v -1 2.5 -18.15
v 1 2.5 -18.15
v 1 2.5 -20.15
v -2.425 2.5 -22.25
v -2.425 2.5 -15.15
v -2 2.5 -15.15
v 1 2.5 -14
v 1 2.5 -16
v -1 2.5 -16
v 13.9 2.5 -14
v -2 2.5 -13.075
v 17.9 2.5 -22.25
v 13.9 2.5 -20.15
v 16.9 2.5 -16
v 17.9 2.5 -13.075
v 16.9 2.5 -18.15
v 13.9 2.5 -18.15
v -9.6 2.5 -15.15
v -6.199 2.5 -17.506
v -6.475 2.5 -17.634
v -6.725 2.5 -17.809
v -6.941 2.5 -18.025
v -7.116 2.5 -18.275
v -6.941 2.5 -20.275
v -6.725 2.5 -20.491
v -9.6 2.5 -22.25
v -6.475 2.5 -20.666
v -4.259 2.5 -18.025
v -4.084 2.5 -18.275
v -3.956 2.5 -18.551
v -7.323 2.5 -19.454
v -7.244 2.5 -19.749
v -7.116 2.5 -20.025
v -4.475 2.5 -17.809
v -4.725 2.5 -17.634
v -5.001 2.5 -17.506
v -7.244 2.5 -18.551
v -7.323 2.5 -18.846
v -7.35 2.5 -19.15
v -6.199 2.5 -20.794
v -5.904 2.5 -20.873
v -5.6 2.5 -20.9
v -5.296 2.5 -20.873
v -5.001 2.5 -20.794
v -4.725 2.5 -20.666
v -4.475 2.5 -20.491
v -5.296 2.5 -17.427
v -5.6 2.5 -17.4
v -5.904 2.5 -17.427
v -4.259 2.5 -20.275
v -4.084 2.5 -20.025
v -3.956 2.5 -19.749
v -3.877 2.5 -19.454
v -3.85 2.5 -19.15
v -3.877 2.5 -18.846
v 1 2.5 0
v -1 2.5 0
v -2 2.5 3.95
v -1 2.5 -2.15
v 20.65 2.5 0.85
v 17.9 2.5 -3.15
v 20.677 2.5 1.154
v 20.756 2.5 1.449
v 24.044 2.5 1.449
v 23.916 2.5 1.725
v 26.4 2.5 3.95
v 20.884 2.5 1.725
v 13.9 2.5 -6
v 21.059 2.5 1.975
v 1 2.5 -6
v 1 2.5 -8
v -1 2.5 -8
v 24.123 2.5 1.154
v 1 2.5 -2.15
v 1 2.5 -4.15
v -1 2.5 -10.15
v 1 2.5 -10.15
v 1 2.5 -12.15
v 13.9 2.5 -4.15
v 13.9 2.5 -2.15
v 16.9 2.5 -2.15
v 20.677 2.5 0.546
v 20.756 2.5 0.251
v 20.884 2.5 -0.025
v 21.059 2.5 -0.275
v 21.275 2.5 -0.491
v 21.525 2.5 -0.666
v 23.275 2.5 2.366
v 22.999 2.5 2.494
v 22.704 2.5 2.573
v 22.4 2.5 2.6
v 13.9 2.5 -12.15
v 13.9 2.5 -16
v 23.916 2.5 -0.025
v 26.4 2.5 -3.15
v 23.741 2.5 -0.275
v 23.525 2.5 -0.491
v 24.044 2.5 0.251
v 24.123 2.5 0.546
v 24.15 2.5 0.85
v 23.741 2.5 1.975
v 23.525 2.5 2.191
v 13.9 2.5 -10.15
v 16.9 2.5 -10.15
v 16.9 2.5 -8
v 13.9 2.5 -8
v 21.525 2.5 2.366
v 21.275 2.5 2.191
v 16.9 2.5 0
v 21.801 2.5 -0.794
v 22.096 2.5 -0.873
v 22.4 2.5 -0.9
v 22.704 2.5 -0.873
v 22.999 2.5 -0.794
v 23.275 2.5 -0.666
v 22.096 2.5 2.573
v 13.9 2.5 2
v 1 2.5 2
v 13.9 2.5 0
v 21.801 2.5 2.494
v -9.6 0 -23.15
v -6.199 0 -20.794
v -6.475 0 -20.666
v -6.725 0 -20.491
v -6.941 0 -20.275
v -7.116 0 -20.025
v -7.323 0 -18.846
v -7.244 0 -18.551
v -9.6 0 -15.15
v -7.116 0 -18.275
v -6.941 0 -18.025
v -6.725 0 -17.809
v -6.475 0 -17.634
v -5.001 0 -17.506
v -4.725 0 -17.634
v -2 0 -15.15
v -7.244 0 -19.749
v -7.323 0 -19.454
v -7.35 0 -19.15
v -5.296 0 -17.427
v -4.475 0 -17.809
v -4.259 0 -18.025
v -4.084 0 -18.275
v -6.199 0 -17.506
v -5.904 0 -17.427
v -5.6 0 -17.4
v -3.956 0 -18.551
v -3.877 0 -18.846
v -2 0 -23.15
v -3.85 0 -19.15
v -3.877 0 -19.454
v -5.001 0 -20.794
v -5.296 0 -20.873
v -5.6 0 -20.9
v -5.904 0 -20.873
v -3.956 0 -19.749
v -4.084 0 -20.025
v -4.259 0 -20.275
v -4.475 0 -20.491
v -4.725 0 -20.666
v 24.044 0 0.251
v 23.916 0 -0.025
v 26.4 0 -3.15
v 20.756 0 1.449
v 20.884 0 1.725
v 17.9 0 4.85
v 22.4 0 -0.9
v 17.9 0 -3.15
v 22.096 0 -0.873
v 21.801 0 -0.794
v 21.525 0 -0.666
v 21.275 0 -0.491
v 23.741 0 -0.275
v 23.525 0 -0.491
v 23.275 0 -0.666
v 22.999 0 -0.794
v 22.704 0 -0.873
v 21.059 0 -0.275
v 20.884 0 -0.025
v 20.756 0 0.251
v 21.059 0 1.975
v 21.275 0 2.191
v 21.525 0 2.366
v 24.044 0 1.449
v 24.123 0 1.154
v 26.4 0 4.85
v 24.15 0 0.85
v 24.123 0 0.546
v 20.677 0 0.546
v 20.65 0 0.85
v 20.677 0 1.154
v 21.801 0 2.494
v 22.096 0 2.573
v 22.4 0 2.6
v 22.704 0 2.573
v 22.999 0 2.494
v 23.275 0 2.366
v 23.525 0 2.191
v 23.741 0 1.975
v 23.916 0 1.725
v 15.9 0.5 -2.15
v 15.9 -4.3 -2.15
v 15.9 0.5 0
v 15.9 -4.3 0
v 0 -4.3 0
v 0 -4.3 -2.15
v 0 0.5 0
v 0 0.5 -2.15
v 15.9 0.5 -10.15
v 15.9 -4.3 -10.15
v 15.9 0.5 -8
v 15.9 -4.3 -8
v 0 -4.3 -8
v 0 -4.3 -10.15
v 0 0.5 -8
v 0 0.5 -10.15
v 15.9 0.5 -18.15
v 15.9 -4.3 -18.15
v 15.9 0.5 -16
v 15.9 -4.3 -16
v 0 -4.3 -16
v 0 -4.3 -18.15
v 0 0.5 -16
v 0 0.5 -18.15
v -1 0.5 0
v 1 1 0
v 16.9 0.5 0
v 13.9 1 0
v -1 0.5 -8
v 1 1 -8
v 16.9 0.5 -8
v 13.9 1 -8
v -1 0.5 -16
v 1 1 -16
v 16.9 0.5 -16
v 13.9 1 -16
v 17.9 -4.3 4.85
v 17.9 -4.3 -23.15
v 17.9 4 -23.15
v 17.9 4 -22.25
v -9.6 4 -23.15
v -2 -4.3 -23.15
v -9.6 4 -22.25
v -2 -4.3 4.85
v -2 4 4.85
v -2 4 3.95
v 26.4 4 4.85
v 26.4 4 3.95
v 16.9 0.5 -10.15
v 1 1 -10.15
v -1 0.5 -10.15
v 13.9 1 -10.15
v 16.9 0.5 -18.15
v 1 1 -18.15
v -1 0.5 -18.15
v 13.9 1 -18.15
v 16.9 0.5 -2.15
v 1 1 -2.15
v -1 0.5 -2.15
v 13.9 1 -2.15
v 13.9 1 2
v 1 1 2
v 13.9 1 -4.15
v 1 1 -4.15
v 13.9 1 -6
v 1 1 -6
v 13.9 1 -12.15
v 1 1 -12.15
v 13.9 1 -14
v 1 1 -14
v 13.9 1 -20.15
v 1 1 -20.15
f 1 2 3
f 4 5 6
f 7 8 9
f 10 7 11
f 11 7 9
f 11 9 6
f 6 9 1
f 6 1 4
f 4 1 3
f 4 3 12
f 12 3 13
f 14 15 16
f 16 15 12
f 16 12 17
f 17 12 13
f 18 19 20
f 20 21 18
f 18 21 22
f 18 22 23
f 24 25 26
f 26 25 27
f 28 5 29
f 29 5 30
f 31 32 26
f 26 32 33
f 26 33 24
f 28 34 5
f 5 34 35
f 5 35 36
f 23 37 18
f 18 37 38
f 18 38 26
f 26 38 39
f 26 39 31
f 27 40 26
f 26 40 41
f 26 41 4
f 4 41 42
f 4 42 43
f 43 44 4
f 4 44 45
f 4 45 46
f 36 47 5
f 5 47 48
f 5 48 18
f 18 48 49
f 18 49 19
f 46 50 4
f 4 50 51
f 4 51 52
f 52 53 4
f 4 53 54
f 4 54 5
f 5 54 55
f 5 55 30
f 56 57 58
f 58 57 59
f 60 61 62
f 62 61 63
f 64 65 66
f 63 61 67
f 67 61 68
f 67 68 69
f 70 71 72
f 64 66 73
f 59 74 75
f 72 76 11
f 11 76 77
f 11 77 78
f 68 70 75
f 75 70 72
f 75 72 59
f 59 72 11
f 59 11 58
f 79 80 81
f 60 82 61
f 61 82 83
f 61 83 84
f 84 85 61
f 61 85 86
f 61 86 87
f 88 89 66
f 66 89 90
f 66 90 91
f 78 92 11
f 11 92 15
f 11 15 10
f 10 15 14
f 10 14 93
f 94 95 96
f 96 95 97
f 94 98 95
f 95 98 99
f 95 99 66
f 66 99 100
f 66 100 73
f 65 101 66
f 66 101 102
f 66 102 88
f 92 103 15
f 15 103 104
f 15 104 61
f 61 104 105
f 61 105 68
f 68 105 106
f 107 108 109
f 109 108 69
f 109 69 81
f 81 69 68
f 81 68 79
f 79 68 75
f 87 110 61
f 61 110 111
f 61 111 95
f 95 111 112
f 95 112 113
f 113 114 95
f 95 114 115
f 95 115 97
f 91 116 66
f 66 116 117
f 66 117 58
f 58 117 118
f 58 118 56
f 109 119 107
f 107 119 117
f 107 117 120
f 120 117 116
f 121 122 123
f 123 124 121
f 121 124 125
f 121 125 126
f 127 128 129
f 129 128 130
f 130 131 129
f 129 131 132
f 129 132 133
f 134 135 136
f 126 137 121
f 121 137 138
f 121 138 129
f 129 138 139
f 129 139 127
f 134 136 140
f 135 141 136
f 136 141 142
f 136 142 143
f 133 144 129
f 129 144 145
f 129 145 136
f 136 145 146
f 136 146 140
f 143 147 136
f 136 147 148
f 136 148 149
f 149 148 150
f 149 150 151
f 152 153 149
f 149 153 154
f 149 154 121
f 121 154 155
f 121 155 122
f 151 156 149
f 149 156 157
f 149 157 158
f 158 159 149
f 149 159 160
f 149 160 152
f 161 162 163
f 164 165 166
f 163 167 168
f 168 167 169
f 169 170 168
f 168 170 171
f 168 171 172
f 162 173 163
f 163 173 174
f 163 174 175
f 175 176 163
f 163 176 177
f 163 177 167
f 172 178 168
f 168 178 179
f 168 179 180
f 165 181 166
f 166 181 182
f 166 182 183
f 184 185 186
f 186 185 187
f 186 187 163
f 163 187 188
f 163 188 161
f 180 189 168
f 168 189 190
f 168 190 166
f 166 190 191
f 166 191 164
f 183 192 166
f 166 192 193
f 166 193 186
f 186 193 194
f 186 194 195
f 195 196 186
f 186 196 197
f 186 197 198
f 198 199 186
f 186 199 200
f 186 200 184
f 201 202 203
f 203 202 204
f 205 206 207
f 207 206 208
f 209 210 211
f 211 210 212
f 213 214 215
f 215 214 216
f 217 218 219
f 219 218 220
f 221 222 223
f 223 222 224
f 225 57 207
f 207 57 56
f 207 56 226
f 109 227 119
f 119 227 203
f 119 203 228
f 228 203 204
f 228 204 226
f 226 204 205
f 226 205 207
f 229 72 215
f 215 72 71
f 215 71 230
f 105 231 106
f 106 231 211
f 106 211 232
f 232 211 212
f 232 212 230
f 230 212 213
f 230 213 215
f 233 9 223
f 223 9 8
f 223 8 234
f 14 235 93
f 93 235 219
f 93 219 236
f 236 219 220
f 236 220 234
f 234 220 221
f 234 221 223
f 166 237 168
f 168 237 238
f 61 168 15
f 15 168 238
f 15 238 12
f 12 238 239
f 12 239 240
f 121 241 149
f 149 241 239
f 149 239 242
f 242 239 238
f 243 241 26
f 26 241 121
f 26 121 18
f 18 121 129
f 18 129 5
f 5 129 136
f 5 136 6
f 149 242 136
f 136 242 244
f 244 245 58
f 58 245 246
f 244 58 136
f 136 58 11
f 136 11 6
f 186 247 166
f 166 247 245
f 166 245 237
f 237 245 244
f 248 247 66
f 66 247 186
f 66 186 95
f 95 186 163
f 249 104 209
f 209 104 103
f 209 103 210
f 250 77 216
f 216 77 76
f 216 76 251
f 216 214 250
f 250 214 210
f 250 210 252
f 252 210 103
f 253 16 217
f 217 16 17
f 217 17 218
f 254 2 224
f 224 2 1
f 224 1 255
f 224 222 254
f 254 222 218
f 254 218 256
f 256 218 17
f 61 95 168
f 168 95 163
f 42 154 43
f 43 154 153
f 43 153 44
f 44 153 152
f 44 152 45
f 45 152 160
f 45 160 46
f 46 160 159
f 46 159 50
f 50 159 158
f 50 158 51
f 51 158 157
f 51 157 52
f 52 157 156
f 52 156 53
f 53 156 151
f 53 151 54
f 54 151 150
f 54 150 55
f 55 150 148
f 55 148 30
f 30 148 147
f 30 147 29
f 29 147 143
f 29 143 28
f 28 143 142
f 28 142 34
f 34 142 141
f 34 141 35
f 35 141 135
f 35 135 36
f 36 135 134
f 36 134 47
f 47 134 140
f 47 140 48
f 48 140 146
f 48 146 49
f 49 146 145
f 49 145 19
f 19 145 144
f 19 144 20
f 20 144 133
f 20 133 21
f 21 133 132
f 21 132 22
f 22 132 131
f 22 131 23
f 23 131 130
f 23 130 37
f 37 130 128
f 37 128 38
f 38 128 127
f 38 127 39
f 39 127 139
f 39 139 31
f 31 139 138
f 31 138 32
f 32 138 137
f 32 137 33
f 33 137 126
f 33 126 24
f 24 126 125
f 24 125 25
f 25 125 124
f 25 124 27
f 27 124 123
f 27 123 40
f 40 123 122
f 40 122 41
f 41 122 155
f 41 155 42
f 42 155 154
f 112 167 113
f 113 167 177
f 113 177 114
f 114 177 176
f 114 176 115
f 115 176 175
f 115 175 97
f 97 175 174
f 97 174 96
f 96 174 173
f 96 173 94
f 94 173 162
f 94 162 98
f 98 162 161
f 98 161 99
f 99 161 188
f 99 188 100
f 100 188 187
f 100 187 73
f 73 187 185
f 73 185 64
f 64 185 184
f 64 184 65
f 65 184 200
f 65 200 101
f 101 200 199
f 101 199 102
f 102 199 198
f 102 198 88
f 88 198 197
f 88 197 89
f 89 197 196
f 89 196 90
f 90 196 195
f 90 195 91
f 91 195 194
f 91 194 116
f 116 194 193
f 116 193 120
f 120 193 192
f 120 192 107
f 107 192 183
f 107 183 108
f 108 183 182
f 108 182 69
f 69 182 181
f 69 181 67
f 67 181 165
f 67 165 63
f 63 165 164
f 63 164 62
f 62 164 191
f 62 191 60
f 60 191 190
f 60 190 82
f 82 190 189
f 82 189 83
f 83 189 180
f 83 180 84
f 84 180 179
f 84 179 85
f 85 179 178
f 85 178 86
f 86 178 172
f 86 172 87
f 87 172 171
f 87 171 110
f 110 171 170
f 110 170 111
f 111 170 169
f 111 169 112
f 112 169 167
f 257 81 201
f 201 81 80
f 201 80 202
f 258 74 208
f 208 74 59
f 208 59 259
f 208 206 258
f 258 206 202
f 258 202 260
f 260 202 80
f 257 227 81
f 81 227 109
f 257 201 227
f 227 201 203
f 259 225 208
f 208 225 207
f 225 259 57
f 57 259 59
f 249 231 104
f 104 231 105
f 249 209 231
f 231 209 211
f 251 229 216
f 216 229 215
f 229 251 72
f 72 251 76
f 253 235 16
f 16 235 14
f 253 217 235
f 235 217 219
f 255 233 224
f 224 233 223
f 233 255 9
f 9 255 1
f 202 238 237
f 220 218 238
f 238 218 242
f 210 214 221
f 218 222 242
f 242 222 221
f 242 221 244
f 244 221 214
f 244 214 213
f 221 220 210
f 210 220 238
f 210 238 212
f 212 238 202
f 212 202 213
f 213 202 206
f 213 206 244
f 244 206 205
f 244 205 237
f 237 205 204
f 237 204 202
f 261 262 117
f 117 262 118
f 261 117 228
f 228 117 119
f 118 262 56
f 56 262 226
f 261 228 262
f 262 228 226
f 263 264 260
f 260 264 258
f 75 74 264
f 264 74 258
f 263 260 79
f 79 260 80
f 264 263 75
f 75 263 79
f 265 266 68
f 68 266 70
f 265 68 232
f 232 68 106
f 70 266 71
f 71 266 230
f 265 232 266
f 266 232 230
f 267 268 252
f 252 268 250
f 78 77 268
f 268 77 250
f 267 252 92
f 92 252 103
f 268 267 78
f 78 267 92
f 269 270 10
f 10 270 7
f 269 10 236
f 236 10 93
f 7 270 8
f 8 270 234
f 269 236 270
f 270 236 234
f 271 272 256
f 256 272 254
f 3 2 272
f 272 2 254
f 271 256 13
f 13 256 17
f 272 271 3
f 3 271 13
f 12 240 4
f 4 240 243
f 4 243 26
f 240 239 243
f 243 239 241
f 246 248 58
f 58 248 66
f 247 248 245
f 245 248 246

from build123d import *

# Parameters (mm, degrees)
SKETCH1_W           = 15.9
SKETCH1_H           = 2.15
SKETCH1_R           = 1.75
BASE_DEPTH          = 2.5
SKETCH3_W           = 17.9
SKETCH3_H           = 2.15
CUT_EXTRUDE1_DEPTH  = 2
SKETCH4_W           = 19.9
SKETCH4_H           = 28
SKETCH4_W_2         = 15.9
SKETCH4_H_2         = 2.15
BOSS_EXTRUDE1_DEPTH = 4.3
SKETCH5_W           = 12.9
SKETCH5_H           = 6.15
CUT_EXTRUDE2_DEPTH  = 1.5
SKETCH6_W           = 27.5
SKETCH6_H           = 0.9
BOSS_EXTRUDE2_DEPTH = 1.5
SKETCH6_3_W         = 27.5
SKETCH6_3_H         = 0.9
SKETCH6_3_W_2       = 28.4
BOSS_EXTRUDE3_DEPTH = 1.5


with BuildPart() as part:
    # Sketch1 → Base (new body)
    with BuildSketch(Plane(origin=(0, 0, 0), x_dir=(1, 0, 0), z_dir=(0, 1, 0))):
        Polygon((-9.6, 15.15), (-2, 15.15), (-2, -4.85), (26.4, -4.85), (26.4, 3.15), (17.9, 3.15), (17.9, 23.15), (-9.6, 23.15), align=None)
        with Locations((7.95, 1.075)):
            Rectangle(SKETCH1_W, SKETCH1_H, mode=Mode.SUBTRACT)
        with Locations((7.95, 9.075)):
            Rectangle(SKETCH1_W, SKETCH1_H, mode=Mode.SUBTRACT)
        with Locations((22.4, -0.85)):
            Circle(SKETCH1_R, mode=Mode.SUBTRACT)
        with Locations((-5.6, 19.15)):
            Circle(SKETCH1_R, mode=Mode.SUBTRACT)
        with Locations((7.95, 17.075)):
            Rectangle(SKETCH1_W, SKETCH1_H, mode=Mode.SUBTRACT)
    extrude(amount=BASE_DEPTH)

    # Sketch3 → Cut-Extrude1 (cut)
    with BuildSketch(Plane(origin=(0, 2.5, 0), x_dir=(1, 0, 0), z_dir=(0, 1, 0))):
        with Locations((7.95, 17.075)):
            Rectangle(SKETCH3_W, SKETCH3_H)
        with Locations((7.95, 9.075)):
            Rectangle(SKETCH3_W, SKETCH3_H)
        with Locations((7.95, 1.075)):
            Rectangle(SKETCH3_W, SKETCH3_H)
    extrude(amount=-CUT_EXTRUDE1_DEPTH, mode=Mode.SUBTRACT)

    # Sketch4 → Boss-Extrude1 (add)
    with BuildSketch(Plane.XZ):
        with Locations((7.95, -9.15)):
            Rectangle(SKETCH4_W, SKETCH4_H)
        with Locations((7.95, -17.075)):
            Rectangle(SKETCH4_W_2, SKETCH4_H_2, mode=Mode.SUBTRACT)
        with Locations((7.95, -9.075)):
            Rectangle(SKETCH4_W_2, SKETCH4_H_2, mode=Mode.SUBTRACT)
        with Locations((7.95, -1.075)):
            Rectangle(SKETCH4_W_2, SKETCH4_H_2, mode=Mode.SUBTRACT)
    extrude(amount=BOSS_EXTRUDE1_DEPTH)

    # Sketch5 → Cut-Extrude2 (cut)
    with BuildSketch(Plane(origin=(0, 2.5, 0), x_dir=(1, 0, 0), z_dir=(0, 1, 0))):
        with Locations((7.45, 17.075)):
            Rectangle(SKETCH5_W, SKETCH5_H)
        with Locations((7.45, 9.075)):
            Rectangle(SKETCH5_W, SKETCH5_H)
        with Locations((7.45, 1.075)):
            Rectangle(SKETCH5_W, SKETCH5_H)
    extrude(amount=-CUT_EXTRUDE2_DEPTH, mode=Mode.SUBTRACT)

    # Sketch6 → Boss-Extrude2 (add)
    with BuildSketch(Plane(origin=(0, 2.5, 0), x_dir=(1, 0, 0), z_dir=(0, 1, 0))):
        with Locations((4.15, 22.7)):
            Rectangle(SKETCH6_W, SKETCH6_H)
    extrude(amount=BOSS_EXTRUDE2_DEPTH)

    # Sketch6<3> → Boss-Extrude3 (add)
    with BuildSketch(Plane(origin=(0, 2.5, 0), x_dir=(1, 0, 0), z_dir=(0, 1, 0))):
        with Locations((4.15, 22.7)):
            Rectangle(SKETCH6_3_W, SKETCH6_3_H)
        with Locations((12.2, -4.4)):
            Rectangle(SKETCH6_3_W_2, SKETCH6_3_H)
    extrude(amount=BOSS_EXTRUDE3_DEPTH)


solid = part.part
